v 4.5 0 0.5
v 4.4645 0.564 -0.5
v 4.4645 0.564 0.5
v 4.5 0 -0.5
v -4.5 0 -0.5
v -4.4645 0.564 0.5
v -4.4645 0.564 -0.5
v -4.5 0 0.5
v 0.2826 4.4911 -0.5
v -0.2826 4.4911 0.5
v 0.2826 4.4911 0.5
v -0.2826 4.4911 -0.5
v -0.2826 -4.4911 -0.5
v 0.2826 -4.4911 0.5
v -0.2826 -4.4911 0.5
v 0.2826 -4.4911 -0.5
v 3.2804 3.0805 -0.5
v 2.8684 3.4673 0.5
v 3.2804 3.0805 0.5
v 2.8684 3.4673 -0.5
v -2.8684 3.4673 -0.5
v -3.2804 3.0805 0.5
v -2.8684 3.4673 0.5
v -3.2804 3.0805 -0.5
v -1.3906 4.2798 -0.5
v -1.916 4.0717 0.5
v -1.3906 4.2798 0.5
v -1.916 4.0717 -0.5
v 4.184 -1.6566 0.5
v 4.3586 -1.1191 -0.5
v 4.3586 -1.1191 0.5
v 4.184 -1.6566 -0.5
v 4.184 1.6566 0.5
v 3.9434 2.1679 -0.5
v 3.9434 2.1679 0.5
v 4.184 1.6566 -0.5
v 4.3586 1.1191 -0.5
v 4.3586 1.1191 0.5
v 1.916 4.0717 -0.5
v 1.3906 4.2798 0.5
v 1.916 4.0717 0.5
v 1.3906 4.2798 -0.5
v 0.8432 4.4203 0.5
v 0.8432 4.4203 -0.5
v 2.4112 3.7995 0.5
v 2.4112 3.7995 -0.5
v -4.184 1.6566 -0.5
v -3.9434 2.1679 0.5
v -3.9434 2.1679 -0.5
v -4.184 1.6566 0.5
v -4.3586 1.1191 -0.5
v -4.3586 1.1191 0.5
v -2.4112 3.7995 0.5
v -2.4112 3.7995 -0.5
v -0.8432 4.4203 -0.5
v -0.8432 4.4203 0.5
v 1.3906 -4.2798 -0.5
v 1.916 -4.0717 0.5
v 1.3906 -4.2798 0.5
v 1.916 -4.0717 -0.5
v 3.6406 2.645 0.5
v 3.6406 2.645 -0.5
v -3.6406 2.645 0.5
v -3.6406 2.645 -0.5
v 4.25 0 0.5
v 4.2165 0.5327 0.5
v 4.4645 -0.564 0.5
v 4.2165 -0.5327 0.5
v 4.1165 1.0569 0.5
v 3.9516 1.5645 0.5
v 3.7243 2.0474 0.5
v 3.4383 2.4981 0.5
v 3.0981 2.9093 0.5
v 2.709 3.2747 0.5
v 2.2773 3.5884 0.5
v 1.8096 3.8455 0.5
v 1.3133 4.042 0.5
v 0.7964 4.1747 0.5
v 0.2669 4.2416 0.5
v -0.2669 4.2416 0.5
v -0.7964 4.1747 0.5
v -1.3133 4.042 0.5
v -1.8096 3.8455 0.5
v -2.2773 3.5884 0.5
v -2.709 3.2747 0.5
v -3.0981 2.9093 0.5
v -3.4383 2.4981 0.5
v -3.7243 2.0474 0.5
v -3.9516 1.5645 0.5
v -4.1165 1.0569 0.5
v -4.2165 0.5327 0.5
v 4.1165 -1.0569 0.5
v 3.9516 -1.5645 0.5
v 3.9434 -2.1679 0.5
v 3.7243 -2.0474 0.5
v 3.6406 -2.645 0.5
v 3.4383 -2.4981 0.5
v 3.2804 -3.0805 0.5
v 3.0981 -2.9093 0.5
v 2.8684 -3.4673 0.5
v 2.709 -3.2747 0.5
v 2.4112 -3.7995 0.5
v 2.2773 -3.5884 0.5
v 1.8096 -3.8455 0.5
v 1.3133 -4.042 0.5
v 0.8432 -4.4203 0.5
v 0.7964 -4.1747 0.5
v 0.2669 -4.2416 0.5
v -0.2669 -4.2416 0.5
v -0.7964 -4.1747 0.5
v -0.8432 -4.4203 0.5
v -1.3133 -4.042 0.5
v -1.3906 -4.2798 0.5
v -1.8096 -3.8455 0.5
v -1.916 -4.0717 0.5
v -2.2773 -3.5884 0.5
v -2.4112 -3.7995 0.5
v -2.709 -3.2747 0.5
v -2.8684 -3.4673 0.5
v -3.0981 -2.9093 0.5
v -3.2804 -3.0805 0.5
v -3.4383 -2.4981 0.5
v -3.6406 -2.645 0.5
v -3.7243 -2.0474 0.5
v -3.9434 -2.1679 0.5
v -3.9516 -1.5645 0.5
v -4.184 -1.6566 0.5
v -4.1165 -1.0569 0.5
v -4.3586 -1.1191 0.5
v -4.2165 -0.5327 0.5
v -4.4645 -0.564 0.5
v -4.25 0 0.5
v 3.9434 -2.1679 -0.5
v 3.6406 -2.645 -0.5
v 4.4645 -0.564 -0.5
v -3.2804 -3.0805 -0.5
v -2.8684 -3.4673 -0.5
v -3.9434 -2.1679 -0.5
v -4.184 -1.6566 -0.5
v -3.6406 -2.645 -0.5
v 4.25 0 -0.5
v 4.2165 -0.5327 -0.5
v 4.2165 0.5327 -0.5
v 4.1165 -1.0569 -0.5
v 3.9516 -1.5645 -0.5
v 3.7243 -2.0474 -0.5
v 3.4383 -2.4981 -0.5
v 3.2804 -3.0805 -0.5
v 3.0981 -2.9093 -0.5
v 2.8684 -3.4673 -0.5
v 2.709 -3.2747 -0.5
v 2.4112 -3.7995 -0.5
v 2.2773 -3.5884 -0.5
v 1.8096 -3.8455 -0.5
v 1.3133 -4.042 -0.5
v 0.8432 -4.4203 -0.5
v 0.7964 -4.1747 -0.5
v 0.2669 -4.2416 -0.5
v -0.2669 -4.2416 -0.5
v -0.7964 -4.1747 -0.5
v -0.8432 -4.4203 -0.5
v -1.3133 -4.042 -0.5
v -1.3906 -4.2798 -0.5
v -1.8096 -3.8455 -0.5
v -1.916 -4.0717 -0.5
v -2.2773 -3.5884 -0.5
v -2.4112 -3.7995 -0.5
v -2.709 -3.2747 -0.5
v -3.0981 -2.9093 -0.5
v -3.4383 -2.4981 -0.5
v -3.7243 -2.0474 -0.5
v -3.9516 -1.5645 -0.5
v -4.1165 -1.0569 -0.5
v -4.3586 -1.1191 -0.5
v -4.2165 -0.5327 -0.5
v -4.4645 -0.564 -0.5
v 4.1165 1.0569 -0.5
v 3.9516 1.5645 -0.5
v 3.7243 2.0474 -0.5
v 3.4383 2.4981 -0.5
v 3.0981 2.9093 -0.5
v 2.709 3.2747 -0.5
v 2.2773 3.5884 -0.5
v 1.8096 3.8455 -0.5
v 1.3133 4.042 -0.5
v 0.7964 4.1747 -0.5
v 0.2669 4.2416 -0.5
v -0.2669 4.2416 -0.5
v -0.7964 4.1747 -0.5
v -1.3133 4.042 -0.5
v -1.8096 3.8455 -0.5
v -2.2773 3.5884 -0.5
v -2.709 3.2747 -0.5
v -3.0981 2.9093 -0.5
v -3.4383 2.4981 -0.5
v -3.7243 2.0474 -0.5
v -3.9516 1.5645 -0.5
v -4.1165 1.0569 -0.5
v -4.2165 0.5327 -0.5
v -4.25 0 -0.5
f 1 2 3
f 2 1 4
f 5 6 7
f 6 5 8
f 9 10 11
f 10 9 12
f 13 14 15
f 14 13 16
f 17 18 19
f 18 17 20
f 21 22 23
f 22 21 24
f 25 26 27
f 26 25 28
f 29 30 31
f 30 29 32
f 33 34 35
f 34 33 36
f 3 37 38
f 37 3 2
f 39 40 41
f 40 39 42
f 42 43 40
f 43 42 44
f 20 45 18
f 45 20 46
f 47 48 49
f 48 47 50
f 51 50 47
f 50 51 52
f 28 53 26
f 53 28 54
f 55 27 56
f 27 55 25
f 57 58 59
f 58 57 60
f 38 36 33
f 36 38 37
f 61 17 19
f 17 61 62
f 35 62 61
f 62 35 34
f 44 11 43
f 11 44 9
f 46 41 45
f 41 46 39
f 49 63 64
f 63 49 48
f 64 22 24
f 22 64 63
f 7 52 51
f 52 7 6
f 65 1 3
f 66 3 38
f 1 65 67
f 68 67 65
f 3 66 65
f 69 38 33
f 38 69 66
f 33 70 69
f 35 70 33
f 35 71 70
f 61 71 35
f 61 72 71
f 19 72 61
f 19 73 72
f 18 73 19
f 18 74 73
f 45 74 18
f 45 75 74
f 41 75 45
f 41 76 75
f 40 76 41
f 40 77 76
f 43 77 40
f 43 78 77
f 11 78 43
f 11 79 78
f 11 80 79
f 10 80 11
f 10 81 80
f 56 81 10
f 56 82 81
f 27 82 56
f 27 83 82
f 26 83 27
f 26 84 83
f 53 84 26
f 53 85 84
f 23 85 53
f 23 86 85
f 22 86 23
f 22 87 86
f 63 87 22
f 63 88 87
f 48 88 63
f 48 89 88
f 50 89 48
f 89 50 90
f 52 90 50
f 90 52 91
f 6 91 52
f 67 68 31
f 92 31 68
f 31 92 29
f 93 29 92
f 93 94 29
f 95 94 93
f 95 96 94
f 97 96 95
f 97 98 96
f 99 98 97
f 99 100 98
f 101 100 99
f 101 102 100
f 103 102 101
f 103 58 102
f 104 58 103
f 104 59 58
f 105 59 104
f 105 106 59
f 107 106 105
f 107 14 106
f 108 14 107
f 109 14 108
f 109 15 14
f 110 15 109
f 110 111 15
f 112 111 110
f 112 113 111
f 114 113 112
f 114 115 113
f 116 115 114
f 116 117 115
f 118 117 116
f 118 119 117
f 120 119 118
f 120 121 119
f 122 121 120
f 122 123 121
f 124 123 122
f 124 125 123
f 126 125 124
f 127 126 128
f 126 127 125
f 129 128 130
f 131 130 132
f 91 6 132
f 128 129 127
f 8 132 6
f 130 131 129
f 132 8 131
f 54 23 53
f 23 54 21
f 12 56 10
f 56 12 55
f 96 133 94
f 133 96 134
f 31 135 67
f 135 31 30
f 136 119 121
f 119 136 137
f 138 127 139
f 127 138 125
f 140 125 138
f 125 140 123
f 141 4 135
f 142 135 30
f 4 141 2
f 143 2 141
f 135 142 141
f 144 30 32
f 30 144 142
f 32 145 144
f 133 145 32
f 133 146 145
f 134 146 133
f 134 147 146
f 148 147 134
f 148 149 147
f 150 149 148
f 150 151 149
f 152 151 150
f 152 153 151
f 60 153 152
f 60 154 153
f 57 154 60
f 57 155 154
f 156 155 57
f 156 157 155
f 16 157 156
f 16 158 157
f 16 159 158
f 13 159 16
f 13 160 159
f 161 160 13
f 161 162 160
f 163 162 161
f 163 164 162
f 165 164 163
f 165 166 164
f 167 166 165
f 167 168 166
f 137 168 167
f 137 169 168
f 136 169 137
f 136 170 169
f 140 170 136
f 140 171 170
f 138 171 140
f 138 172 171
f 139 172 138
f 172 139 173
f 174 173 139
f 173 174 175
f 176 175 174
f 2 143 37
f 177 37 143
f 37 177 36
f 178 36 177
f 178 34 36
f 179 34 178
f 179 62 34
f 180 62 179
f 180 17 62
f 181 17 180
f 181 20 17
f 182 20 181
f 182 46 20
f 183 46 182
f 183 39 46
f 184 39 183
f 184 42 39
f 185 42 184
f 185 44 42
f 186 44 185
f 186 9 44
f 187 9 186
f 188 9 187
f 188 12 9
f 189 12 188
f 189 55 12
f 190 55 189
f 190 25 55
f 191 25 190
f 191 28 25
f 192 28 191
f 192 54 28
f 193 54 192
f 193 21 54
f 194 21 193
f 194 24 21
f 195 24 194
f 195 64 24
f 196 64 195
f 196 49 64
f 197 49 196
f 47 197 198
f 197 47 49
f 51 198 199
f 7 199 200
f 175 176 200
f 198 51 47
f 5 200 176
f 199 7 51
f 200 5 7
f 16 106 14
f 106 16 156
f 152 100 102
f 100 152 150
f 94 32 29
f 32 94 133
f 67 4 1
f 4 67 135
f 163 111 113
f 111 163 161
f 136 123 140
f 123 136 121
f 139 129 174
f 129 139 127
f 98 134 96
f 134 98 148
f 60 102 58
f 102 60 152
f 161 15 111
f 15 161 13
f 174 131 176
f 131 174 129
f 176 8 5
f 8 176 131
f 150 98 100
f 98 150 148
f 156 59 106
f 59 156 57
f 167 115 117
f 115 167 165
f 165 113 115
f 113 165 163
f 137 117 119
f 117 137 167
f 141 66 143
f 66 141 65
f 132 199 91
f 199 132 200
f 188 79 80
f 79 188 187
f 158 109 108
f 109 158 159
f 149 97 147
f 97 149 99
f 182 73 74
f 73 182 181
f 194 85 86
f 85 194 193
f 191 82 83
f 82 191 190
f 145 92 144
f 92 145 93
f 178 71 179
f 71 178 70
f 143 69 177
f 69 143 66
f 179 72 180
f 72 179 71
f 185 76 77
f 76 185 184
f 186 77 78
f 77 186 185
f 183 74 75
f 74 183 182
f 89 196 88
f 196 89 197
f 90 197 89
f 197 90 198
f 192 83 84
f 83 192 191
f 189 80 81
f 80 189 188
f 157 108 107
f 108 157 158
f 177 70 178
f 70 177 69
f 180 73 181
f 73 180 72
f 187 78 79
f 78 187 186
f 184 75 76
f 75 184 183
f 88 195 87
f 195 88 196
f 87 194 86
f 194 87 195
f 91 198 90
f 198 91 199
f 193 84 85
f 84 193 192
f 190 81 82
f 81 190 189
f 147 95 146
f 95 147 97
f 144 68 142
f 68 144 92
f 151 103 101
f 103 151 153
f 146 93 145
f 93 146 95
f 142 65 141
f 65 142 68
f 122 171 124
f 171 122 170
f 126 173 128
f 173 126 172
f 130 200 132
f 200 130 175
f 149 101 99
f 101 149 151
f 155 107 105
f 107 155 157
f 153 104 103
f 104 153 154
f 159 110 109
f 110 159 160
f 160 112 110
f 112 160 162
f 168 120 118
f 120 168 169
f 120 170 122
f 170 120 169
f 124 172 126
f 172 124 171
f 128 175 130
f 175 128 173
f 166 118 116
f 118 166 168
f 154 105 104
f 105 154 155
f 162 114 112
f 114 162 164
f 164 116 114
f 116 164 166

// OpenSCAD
$fn = 50;


difference() {
	union() {
		translate(v = [0, 0, -0.5000000000]) {
			cylinder(h = 1, r = 4.5000000000);
		}
	}
	union() {
		translate(v = [0, 0, -100.0000000000]) {
			cylinder(h = 200, r = 4.2500000000);
		}
	}
}
